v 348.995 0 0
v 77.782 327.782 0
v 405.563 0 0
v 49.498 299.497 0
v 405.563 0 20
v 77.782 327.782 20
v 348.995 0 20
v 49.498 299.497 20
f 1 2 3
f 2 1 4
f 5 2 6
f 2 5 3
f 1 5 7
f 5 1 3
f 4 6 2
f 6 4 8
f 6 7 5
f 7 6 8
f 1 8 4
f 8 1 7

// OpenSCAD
// file: params.scad
// Global Parameters for Dimon brace

// The HSS is a HSS 127x127x13 G40.20

HSS_d = 127.0;
HSS_b = 127.0;
HSS_t = 12.7;
HSS_l = 250.0;    //length of HSS for model

// The tongue plate (welded into slot in HSS)

TP_t = 20.0;
// TP_w = 280.0;  // width of plate
TP_w = 250.0;
TP_l = 250.0;   // total length
TP_lw = 100.0;  // length of welded portion

// cover plate (welded on HSS)

CP_t = 10;
CP_w = 60;
CP_l = 200;
CP_setback = 10;
CP_lw = CP_l;

// welds

TP_D = 8;
CP_D = 6;

// Bolts

BOLT_d = 20;    // diameter
BOLT_hd = BOLT_d + 2;    // hole diameter
// BOLT_s = 75;             // longitudinal spacing (pitch)
// BOLT_g = 75;             // transverse spacing (gauge)
BOLT_s = 70;             // longitudinal spacing (pitch)
BOLT_g = 70;             // transverse spacing (gauge)
BOLT_NG = 3;             // number of gauge lines (across)
BOLT_NT = 2;             // number of transverse lines
// BOLT_e = 40;		 // end distance
BOLT_e = 35;		 // end distance

// Gusset plate

GP_w = TP_w;
GP_t = TP_t;
// GP_w2 = 110;
GP_w2 = 70;
GP_theta = 45;
GP_l1 = GP_w2 + GP_w*cos(GP_theta);   // dist out to furthest pt
GP_l = GP_l1*tan(GP_theta) + GP_w*sin(GP_theta);
// GP_gap = 10;		// gap to tongue plate
GP_gap = 5;		// gap to tongue plate

// Lap Plate

LP_t = 10;
LP_w = 230;
LP_l = 2*(BOLT_NT-1)*BOLT_s + 4*BOLT_e + GP_gap;


// misc.

$fn = 60;       // number of sides for poly approx to circles
// main file
// additional plate to glue on to make up for sgorter w2

include <params.scad>;

module gplate(w2) {
    GP_w2 = w2;
    GP_l1 = GP_w2 + GP_w*cos(GP_theta);   // dist out to furthest pt
    GP_l = GP_l1*tan(GP_theta) + GP_w*sin(GP_theta);
    pts = [[0,0],
    	   [GP_l1/sin(GP_theta),0],
	       [GP_w2*sin(GP_theta),GP_l*sin(GP_theta)],
	       [0,GP_w]];
    linear_extrude(GP_t) polygon(pts);
}


echo(GP_w,GP_w2,GP_l1,GP_l);

render() {
    difference() {
        gplate(110);
        gplate(GP_w2);
    }
}
